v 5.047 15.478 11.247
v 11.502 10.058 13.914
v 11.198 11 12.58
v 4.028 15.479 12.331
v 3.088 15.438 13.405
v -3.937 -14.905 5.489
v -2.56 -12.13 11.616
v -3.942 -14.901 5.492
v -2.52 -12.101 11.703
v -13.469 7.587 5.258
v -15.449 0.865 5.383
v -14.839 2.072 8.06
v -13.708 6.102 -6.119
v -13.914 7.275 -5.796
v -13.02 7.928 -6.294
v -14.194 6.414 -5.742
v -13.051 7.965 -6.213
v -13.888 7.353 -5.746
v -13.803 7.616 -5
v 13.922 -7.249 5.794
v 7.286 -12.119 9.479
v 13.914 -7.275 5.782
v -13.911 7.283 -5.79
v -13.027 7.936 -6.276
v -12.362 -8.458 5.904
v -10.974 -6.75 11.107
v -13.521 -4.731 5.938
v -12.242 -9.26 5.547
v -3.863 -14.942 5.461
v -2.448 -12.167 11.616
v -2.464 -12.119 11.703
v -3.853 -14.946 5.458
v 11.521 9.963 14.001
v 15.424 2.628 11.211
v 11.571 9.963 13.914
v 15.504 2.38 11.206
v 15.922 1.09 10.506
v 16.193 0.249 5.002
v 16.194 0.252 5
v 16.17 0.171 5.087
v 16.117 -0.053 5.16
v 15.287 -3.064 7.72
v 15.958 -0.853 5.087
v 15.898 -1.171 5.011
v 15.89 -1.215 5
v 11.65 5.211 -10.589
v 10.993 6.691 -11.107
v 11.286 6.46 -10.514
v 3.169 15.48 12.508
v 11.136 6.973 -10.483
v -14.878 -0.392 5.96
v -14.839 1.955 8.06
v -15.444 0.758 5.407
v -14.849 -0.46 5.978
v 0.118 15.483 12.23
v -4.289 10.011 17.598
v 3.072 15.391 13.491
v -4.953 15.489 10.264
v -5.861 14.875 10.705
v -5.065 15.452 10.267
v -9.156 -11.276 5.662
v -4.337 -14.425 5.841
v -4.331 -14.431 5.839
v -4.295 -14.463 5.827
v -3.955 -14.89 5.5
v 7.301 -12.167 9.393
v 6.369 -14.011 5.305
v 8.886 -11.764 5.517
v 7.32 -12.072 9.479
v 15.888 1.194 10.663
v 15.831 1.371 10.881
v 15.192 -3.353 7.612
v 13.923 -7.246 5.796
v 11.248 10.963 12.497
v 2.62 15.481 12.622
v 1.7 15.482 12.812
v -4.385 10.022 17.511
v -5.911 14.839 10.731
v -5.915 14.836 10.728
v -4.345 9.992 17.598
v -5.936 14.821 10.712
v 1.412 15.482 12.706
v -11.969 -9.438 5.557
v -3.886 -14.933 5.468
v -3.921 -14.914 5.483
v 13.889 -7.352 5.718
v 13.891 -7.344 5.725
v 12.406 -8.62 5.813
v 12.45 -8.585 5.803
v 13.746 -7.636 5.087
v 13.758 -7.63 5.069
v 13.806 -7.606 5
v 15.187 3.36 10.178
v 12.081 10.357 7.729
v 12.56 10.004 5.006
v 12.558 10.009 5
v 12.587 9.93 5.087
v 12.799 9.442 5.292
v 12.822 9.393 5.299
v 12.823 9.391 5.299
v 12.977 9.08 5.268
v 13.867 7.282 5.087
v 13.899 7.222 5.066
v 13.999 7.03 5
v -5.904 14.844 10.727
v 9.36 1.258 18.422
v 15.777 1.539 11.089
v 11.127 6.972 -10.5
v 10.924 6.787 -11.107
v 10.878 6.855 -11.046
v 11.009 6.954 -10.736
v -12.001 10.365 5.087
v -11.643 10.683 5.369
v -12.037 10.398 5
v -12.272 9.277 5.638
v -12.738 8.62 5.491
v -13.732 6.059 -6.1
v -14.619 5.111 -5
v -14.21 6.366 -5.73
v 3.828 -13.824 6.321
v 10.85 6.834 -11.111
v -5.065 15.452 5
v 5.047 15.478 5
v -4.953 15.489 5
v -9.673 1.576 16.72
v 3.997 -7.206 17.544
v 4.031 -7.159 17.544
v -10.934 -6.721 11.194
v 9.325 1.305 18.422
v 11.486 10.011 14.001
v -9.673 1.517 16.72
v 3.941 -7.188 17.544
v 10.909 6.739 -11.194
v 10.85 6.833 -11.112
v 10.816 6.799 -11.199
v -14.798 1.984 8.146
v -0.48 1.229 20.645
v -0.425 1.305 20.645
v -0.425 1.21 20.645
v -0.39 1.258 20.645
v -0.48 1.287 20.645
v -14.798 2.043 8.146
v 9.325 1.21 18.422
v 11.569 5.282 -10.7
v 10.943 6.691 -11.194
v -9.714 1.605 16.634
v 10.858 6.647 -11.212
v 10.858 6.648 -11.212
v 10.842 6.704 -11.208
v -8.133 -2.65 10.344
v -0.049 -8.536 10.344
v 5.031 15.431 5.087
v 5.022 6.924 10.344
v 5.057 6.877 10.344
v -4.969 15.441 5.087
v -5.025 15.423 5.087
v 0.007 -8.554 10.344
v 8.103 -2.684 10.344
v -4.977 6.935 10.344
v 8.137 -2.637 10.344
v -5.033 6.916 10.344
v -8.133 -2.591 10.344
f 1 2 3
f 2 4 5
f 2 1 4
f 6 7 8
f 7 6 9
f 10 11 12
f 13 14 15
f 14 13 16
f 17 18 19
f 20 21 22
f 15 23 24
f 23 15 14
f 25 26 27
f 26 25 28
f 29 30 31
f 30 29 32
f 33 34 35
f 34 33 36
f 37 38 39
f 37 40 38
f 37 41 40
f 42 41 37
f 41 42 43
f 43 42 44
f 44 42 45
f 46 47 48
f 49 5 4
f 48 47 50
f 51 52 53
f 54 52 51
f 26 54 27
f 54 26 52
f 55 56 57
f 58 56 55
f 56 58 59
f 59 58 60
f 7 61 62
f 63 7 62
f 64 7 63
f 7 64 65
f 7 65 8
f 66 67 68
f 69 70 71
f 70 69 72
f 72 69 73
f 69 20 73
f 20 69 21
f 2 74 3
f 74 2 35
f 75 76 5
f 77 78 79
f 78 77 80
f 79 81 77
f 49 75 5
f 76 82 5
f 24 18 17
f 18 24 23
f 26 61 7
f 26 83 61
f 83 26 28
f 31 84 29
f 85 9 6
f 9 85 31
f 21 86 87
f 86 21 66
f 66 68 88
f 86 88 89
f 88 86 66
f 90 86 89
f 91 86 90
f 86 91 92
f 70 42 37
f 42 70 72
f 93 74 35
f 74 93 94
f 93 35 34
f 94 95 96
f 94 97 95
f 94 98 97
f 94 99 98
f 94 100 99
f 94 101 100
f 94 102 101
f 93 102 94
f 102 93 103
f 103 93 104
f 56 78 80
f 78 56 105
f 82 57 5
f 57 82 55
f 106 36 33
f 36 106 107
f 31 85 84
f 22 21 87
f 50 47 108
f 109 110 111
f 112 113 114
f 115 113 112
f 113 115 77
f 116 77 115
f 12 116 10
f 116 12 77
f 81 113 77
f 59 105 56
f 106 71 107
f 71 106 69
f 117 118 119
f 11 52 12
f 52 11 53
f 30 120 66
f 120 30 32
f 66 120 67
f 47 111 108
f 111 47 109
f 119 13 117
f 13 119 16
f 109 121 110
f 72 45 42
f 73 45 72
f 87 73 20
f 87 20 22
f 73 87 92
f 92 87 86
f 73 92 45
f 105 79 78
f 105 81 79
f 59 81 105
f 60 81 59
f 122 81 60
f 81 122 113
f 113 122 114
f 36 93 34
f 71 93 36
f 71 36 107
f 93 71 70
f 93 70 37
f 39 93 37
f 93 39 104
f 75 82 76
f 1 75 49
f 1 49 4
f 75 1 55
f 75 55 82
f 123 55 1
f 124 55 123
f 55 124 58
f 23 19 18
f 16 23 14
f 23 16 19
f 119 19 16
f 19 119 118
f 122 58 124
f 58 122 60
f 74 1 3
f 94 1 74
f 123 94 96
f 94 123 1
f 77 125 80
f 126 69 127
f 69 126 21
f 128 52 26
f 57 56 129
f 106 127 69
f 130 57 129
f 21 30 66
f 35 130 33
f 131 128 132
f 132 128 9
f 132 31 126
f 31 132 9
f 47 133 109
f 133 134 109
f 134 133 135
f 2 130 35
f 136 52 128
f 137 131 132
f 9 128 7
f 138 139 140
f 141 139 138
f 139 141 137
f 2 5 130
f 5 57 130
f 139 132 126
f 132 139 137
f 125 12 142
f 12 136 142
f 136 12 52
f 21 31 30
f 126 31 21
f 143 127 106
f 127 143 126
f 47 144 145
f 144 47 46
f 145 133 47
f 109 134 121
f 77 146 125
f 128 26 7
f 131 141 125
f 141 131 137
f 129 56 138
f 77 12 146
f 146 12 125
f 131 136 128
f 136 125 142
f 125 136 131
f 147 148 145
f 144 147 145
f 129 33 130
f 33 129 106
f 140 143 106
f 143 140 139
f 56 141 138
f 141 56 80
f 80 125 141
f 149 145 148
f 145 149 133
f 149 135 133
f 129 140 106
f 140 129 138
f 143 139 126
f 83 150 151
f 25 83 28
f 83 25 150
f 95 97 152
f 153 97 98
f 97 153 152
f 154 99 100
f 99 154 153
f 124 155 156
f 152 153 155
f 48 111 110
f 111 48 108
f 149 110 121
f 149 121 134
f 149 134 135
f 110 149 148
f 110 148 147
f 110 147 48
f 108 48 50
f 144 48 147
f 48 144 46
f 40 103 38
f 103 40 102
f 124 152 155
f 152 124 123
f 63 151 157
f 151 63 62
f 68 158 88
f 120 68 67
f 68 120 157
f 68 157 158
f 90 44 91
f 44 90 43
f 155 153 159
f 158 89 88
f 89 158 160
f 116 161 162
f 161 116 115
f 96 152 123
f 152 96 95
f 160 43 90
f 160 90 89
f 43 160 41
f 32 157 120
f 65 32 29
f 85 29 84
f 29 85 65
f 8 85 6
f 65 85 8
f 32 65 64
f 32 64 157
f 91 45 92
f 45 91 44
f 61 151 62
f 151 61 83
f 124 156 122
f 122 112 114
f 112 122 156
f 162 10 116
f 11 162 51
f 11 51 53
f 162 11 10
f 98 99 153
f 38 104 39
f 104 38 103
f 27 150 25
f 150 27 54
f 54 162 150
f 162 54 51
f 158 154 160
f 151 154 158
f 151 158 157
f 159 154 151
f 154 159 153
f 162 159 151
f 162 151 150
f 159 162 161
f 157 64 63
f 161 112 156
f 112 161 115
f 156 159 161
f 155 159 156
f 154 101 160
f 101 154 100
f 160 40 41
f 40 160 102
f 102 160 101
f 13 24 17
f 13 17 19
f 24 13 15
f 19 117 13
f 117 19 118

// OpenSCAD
// Auto-generated OpenSCAD file

    inner_points = 10*[[1.3099900587146427, 0.9497157652788513, -0.4999999999995077], [1.3099900587145388, 0.9497157652784762, 0.5000000000004923], [-1.3099900587145388, -0.9497157652784762, -0.5000000000004923], [-1.3099900587146427, -0.9497157652788513, 0.4999999999995077], [1.6180331406628494, -0.001656643225752208, -0.4999999999998327], [1.6180331406627457, -0.0016566432261273523, 0.5000000000001673], [0.5015752992619325, 1.5383290310986224, -0.49999999999937084], [0.5015752992618286, 1.5383290310982474, 0.5000000000006292], [-0.5015752992618286, -1.5383290310982474, -0.5000000000006292], [-0.5015752992619325, -1.5383290310986224, 0.49999999999937084], [-1.6180331406627457, 0.0016566432261273523, -0.5000000000001673], [-1.6180331406628494, 0.001656643225752208, 0.4999999999998327], [1.3080425578016073, -0.9523962703252791, -0.5000000000002215], [1.3080425578015036, -0.9523962703256543, 0.49999999999977845], [-0.49842417659141613, 1.5393528929194857, -0.49999999999947425], [-0.49842417659151983, 1.5393528929191105, 0.5000000000005257], [0.49842417659151983, -1.5393528929191105, -0.5000000000005257], [0.49842417659141613, -1.5393528929194857, 0.49999999999947425], [-1.3080425578015036, 0.9523962703256543, -0.49999999999977845], [-1.3080425578016073, 0.9523962703252791, 0.5000000000002215], [0.8101566572239665, 1.1126874591532696, -1.3506508083515383], [-1.3094517827007117, -0.4239849287192254, -1.350650808352335], [1.308580833815434, -0.42666543376602845, -1.350650808352064], [-0.0014092248991565137, -1.3763811990446921, -1.3506508083525566], [-0.8078764834388312, 1.1143441023792096, -1.3506508083517057], [0.8092857083384629, 0.2620370966671998, -1.876381920470991], [-0.5007043503761278, -0.687678668611464, -1.8763819204714836], [0.000870948885752787, 0.850650362486971, -1.8763819204708543], [-0.8087474323243347, 0.2636937398931396, -1.8763819204711585], [0.4992951254772207, -0.688702530432327, -1.87638192047138], [0.5007043503762161, 0.6876786686117831, 1.0257311121194437], [-0.8092857083383747, -0.2620370966668807, 1.0257311121189512], [0.808747432324423, -0.2636937398928205, 1.0257311121191186], [-0.0008709488856644687, -0.8506503624866519, 1.0257311121188144], [-0.49929512547713234, 0.6887025304326461, 1.0257311121193402]];

    outer_points = 10*[[1.6792886560853284, 0.2013716374572302, 0.08644687340106805], [1.4757777400560284, -0.2013716374572302, -0.8059550324508248], [-1.4757777400560284, 0.2013716374572302, 0.8059550324508248], [-1.6792886560853284, -0.2013716374572302, -0.08644687340106805], [1.2928432796682825, 1.0718860131747094, -0.21829021445516045], [1.0893323636389824, 0.6691427382602492, -1.1106921203070534], [1.4631699692206952, -0.6691427382602492, 0.5285977920443675], [1.2596590531913952, -1.0718860131747094, -0.36380411380752536], [-1.2596590531913952, 1.0718860131747094, 0.36380411380752536], [-1.4631699692206952, 0.6691427382602492, -0.5285977920443675], [-1.0893323636389824, -0.6691427382602492, 1.1106921203070534], [-1.2928432796682825, -1.0718860131747094, 0.21829021445516045], [0.451442838965622, 1.609893485063508, -0.26921426159590167], [0.24793192293632205, 1.2071502101490479, -1.1616161674477947], [0.7270372118526772, -1.2071502101490479, 0.9392759187099872], [0.5235262958233773, -1.609893485063508, 0.046874012858094255], [-0.5235262958233773, 1.609893485063508, -0.046874012858094255], [-0.7270372118526772, 1.2071502101490479, -0.9392759187099872], [-0.24793192293632205, -1.2071502101490479, 1.1616161674477947], [-0.451442838965622, -1.609893485063508, 0.26921426159590167], [1.5892095552954468, 0.15465966592254854, 1.081285426793642], [-0.9632927775642309, 0.15465966592254854, 1.6633797550563276], [0.9639278014574195, 1.5631815135288265, 0.5882104610096014], [-0.6136053966132589, 1.5631815135288265, 0.9479645405344798], [0.39812173364181414, -0.715854709794931, 1.7457765941747487], [1.1470922329142266, 0.9963044555500771, 1.3913923782528013], [-0.43044096515645186, 0.9963044555500771, 1.7511464577776796], [0.9309735460495933, 0.1257900798325976, 1.8335432968961007], [-0.04399558873940601, 0.1257900798325976, 2.055883545633908], [0.30569179221156606, 1.5343119274388755, 1.3404683311120602], [0.60355769038524, -0.6537105631857435, -0.9920240551898661], [-0.9739755076854384, -0.6537105631857435, -0.6322699756649878], [0.21711231396819408, 0.21680381253173597, -1.2967611430460946], [-0.7578568208208052, 0.21680381253173597, -1.0744208943082874], [-0.13257506698277793, -1.1917180350745418, -0.5813459285242466]];

    // Convex hull for inner set (I)
    module inner_hull() {
        hull() {
            for (p = inner_points) {
                translate(p) sphere(r=0.1);
            }
        }
    }

    // Convex hull for outer set (O) minus inner hull (O \ I)
    module outer_minus_inner() {
        difference() {
            hull() {
                for (p = outer_points) {
                    translate(p) sphere(r=0.1);
                }
            }
            inner_hull(); // Subtract inner hull
        }
    }

    // Convex hull for outer set (O) minus all translated inner hulls
    module outer_minus_AllTranslationInner() {
        difference() {
            hull() {
                for (p = outer_points) {
                    translate(p) sphere(r=0.1);
                }
            }
            hull() {
                translate([0,0,50]) inner_hull();
                translate([0,0,-50]) inner_hull();
            }; // Subtract translated inner hulls
        }
    }

    // Difference between outer_minus_inner and outer_minus_AllTranslationInner
    module outer_minus_inner_diff() {
        difference() {
            // Outer minus inner
            difference() {
                hull() {
                    for (p = outer_points) {
                        translate(p) sphere(r=0.1);
                    }
                }
                inner_hull();
            }

            // Subtract Outer minus AllTranslationInner
            difference() {
                hull() {
                    for (p = outer_points) {
                        translate(p) sphere(r=0.1);
                    }
                }
                hull() {
                    translate([0,0,50]) inner_hull();
                    translate([0,0,-50]) inner_hull();
                };
            }
        }
    }

    // Rendering all with colors applied
    color([1, 1, 0, 1]) outer_minus_inner_diff(); // Opaque yellow
    
